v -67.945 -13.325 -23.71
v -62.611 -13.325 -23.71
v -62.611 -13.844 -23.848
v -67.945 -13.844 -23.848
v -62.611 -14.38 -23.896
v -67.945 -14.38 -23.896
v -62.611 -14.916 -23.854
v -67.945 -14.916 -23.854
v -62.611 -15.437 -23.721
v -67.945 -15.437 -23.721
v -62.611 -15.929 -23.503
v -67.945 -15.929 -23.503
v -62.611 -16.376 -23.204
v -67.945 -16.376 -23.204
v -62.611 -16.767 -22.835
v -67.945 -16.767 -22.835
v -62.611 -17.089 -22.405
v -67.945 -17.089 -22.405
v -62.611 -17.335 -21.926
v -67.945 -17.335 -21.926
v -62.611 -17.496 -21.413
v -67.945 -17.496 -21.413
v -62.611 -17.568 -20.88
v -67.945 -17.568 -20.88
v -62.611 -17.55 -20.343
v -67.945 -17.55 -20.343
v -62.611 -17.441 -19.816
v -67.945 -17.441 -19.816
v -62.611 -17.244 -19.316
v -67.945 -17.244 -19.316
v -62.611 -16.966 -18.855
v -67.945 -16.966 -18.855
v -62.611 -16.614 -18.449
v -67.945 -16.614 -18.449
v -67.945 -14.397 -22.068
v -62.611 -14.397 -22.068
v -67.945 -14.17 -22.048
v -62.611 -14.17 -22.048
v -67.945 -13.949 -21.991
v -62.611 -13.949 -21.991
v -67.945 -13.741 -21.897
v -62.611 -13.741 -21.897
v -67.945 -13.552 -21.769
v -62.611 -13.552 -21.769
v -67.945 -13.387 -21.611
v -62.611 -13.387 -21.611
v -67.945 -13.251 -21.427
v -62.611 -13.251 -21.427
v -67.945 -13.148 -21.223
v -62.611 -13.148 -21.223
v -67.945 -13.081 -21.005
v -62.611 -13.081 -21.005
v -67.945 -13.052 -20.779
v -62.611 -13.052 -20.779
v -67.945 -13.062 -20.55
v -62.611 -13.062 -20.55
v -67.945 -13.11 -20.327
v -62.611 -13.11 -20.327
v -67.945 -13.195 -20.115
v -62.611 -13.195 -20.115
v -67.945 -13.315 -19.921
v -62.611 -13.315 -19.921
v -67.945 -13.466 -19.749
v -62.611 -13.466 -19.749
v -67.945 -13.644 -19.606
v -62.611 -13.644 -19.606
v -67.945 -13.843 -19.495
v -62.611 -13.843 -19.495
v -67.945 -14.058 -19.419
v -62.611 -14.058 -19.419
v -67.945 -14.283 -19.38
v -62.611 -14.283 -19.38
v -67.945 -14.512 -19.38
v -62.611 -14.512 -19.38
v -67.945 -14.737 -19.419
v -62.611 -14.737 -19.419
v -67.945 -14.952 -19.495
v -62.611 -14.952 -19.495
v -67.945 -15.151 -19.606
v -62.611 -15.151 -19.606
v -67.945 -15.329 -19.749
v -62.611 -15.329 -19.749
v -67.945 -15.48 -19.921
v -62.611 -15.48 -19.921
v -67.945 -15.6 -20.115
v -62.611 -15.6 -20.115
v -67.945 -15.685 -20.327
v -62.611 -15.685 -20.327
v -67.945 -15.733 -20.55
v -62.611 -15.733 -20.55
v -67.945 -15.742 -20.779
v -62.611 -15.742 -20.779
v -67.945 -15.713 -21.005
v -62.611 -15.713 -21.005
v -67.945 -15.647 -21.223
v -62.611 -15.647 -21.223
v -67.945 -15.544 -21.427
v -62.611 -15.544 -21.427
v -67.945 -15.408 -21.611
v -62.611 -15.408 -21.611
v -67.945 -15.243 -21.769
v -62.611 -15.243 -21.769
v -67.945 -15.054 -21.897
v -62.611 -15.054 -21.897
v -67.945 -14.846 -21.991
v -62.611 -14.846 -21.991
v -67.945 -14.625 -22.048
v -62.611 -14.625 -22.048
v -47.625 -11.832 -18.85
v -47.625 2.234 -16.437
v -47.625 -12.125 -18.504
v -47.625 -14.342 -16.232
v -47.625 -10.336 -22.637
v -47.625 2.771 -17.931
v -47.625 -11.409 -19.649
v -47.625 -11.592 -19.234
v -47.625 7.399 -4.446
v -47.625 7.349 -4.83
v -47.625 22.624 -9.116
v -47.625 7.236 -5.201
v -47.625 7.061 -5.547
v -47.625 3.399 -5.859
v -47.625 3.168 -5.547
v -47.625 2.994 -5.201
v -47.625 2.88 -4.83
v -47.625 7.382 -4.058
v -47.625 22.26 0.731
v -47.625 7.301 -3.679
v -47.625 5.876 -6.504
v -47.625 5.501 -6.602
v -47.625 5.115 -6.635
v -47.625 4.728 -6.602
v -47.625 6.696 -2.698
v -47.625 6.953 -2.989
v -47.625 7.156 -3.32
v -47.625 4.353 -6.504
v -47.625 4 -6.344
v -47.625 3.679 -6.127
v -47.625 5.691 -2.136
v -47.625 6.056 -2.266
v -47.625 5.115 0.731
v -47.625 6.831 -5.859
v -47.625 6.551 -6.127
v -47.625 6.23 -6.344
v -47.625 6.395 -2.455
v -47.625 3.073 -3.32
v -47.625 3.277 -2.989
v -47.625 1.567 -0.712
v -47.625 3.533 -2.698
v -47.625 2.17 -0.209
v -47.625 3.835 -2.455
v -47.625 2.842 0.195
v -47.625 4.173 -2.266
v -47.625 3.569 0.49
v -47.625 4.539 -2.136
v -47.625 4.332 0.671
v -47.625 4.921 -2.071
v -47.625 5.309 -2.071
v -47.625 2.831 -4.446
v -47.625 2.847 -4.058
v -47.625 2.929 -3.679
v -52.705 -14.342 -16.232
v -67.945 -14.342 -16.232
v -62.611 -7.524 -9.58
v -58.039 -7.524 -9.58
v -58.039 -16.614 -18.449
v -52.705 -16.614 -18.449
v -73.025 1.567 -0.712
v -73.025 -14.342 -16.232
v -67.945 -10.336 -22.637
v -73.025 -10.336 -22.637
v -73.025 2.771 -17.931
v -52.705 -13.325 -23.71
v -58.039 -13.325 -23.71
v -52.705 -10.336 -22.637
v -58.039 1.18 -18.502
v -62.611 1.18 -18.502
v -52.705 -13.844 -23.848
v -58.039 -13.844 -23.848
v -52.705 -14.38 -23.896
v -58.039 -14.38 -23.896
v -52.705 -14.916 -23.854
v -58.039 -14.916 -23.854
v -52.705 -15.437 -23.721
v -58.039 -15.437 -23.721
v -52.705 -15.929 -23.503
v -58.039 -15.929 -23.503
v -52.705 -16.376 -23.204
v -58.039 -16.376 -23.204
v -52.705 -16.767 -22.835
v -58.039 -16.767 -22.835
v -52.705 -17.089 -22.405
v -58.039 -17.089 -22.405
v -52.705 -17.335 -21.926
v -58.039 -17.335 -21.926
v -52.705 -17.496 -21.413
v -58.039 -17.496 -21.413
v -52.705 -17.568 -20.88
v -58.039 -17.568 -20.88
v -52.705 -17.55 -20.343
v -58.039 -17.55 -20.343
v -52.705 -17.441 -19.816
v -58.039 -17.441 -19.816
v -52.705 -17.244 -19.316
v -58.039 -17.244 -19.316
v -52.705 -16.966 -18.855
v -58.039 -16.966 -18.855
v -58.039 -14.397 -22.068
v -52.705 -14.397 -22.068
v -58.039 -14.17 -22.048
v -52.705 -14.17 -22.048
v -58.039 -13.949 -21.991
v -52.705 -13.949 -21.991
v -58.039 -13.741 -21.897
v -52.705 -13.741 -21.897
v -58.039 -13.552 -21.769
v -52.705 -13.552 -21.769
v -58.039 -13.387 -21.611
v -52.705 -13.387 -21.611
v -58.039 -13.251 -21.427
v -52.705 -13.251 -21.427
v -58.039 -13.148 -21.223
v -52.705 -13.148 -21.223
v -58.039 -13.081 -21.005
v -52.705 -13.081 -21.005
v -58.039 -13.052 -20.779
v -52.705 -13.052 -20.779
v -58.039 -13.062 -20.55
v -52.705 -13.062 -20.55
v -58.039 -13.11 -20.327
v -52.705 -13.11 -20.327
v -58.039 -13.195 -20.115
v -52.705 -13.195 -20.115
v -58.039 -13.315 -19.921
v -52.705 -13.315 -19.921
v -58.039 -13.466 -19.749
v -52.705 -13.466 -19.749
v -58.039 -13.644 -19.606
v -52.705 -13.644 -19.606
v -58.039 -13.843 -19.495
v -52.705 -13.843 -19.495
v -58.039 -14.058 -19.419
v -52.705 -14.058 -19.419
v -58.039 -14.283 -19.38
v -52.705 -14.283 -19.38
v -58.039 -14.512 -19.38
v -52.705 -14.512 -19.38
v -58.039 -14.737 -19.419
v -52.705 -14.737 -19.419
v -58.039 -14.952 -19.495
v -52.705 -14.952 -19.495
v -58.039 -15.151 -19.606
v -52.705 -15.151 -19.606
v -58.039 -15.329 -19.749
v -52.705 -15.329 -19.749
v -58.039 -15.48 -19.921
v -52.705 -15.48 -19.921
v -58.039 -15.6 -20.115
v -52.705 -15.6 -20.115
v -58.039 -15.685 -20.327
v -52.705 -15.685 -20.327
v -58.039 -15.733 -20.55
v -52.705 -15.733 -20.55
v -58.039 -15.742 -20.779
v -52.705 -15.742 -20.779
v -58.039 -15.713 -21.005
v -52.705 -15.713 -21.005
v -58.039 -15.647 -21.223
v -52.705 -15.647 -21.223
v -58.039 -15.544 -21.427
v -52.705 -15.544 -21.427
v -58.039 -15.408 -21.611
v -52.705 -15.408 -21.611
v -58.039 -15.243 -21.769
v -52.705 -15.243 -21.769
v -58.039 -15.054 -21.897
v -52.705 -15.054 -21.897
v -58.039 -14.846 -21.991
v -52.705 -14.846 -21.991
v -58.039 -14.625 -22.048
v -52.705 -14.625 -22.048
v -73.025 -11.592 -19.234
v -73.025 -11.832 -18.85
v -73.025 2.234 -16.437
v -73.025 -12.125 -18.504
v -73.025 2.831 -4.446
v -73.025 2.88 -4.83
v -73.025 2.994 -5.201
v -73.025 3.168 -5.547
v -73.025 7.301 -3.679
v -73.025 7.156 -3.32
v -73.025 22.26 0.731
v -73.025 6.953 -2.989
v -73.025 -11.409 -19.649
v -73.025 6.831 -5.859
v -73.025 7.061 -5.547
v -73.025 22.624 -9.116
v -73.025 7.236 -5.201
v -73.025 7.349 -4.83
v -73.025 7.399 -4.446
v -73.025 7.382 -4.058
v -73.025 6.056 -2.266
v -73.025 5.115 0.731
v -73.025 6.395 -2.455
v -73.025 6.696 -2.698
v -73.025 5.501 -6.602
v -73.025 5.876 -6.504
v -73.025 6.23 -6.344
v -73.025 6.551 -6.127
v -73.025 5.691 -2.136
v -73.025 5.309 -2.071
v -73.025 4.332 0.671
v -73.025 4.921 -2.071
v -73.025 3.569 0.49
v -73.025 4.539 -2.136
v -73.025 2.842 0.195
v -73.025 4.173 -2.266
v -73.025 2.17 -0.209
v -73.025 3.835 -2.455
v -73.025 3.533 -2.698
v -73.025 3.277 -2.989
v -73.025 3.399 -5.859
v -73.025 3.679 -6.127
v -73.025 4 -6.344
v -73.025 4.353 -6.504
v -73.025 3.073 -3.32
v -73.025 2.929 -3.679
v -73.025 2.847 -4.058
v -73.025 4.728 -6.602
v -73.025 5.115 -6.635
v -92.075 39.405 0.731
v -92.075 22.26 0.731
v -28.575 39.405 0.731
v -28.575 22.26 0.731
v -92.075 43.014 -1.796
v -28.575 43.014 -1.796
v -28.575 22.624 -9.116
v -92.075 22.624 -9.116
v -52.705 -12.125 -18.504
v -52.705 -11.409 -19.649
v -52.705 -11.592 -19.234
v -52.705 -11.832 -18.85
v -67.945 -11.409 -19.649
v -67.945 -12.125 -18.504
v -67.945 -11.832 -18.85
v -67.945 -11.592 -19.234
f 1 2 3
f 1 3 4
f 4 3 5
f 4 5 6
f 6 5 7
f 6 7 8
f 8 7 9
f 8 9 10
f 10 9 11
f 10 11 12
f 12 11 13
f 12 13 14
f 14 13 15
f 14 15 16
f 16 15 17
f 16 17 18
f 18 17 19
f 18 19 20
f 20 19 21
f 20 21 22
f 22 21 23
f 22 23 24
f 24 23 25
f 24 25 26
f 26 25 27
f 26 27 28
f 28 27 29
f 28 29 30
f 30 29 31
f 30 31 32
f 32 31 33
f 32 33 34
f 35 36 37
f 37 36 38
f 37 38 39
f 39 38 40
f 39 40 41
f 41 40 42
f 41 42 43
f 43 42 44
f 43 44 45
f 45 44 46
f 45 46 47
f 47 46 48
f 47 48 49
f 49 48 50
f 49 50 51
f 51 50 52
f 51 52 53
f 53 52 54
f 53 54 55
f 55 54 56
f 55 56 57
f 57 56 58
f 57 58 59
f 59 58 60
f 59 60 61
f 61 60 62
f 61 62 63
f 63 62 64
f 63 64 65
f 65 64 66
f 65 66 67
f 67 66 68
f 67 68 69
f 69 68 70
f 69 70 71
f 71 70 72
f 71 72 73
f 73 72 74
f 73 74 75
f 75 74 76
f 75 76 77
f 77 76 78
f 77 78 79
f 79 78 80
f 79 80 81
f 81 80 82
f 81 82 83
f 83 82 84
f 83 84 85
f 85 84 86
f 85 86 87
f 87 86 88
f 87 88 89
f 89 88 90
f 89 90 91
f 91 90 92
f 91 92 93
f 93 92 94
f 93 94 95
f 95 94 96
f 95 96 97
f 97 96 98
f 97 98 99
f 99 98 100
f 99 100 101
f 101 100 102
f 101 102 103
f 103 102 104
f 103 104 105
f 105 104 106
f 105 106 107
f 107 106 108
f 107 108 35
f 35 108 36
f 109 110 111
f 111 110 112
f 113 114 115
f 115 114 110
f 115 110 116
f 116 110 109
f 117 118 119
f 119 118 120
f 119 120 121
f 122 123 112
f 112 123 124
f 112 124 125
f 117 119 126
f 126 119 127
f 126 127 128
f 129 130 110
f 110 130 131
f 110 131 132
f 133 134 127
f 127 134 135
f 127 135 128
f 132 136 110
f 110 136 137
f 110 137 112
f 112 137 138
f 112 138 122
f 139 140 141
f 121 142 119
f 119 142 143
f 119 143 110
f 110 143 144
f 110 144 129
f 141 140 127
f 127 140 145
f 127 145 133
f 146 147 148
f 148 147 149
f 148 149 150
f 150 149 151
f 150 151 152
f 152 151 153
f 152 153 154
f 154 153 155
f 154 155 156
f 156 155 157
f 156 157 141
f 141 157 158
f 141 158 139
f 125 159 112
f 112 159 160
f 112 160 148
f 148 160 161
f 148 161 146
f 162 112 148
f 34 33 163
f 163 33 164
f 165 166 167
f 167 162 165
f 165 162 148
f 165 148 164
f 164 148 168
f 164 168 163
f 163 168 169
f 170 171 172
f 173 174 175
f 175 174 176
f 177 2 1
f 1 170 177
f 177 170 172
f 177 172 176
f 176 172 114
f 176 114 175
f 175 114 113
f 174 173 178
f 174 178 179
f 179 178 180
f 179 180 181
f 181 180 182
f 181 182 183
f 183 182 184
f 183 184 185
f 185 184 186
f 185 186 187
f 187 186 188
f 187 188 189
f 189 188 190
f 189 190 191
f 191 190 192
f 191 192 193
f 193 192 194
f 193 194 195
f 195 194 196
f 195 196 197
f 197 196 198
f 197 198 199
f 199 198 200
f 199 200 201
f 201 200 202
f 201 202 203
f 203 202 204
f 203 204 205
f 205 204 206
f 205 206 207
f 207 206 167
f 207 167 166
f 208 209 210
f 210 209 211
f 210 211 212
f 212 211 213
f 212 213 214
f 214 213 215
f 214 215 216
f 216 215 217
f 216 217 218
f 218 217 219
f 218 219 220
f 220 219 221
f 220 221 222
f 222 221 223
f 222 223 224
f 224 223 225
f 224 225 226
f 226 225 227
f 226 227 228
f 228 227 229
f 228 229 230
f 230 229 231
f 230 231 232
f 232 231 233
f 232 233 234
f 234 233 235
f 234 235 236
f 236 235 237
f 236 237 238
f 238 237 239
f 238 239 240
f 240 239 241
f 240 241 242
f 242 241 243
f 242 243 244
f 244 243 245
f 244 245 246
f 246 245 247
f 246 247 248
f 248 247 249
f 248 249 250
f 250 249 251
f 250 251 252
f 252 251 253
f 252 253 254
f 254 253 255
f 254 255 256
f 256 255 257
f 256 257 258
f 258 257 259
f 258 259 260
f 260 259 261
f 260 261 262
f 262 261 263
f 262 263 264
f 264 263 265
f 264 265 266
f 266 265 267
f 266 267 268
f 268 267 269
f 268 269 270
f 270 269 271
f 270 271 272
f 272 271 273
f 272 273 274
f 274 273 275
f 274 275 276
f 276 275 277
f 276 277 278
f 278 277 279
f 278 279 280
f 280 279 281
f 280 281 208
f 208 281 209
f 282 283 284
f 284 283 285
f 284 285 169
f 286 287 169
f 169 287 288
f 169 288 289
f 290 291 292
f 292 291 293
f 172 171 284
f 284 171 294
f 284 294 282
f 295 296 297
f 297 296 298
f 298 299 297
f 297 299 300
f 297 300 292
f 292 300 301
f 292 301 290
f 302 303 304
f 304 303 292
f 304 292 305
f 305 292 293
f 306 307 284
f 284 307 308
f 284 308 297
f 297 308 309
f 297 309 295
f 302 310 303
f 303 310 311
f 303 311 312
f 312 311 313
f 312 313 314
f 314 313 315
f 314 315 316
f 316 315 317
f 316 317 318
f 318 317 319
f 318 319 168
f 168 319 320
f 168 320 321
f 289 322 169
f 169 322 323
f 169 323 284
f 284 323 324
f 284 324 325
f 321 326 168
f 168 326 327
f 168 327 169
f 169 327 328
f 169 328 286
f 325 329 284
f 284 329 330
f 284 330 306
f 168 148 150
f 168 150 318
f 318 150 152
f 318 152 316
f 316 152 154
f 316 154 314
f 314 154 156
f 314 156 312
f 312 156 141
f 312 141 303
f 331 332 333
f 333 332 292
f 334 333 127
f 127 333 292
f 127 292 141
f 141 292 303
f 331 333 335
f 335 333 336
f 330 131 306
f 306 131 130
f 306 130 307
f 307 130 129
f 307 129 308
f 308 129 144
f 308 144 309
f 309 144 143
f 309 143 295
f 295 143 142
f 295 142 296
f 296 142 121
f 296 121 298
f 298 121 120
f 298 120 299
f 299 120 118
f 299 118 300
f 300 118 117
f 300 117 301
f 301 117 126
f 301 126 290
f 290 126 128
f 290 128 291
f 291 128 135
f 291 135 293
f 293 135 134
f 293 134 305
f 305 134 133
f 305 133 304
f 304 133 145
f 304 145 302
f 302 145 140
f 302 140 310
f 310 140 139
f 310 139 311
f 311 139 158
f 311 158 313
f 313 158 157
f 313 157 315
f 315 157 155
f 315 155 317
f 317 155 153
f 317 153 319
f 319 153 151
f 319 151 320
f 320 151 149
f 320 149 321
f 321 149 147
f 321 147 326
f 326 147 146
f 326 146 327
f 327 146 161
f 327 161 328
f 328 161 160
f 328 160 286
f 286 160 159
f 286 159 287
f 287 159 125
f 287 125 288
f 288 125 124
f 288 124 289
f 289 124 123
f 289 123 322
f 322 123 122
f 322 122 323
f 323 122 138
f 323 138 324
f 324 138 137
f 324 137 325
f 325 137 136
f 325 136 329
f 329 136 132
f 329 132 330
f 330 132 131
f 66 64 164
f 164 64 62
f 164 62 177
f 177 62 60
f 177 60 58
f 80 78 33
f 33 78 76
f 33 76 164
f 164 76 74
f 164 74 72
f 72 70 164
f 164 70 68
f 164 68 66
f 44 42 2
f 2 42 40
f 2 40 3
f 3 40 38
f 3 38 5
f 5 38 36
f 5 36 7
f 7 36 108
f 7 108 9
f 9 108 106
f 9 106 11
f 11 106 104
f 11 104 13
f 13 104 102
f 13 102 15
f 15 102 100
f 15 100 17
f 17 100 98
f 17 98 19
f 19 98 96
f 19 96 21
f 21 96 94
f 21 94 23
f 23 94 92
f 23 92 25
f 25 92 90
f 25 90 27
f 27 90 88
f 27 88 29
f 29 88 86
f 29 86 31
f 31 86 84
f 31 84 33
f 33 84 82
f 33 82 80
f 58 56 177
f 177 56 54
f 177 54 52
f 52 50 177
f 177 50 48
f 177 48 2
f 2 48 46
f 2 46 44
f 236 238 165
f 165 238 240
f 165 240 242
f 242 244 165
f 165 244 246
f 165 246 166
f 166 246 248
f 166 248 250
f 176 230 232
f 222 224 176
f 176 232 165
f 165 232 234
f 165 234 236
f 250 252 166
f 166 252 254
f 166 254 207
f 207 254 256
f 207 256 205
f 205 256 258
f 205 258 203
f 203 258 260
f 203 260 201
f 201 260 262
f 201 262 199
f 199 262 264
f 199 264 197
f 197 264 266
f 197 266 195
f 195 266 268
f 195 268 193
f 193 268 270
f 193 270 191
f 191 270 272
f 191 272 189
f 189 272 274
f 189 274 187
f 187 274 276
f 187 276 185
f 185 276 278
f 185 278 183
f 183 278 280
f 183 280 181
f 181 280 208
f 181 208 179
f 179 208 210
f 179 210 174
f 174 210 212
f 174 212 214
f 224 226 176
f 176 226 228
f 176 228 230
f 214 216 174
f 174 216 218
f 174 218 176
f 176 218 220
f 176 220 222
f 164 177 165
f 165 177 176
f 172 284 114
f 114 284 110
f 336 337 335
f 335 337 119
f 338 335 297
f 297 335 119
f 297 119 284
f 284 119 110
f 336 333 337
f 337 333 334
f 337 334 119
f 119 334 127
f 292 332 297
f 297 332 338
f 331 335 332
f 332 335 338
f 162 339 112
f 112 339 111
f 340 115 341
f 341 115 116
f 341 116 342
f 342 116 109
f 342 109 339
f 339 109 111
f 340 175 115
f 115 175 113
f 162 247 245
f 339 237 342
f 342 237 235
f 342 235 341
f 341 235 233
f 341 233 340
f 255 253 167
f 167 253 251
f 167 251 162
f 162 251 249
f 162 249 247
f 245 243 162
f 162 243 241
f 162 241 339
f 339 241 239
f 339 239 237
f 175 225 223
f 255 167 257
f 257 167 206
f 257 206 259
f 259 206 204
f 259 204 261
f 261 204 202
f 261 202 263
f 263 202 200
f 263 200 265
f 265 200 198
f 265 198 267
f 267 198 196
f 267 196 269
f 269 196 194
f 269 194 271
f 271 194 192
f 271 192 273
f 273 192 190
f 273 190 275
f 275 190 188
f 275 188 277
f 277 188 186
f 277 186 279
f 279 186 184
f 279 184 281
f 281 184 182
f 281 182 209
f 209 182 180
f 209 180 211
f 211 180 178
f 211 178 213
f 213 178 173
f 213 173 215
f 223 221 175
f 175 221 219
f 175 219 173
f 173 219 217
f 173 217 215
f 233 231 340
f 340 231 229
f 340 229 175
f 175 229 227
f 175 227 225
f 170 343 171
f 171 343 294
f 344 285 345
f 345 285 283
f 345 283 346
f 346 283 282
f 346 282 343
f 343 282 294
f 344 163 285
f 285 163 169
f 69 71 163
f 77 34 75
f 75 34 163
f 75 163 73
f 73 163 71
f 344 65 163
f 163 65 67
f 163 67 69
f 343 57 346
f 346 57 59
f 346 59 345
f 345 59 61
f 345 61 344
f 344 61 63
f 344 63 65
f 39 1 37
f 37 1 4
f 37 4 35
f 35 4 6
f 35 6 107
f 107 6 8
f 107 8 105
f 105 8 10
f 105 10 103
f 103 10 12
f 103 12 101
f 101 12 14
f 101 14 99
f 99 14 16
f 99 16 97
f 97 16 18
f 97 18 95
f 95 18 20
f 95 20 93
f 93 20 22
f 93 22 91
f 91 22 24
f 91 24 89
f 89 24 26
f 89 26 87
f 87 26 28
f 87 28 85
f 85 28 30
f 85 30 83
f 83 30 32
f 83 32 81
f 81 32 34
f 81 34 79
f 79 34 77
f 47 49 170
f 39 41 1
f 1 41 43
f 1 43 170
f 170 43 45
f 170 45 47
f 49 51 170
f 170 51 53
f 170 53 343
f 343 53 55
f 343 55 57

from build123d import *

# Parameters (mm, degrees)
BOSS_EXTRUDE1_DEPTH = 50.8
SCALE1_SCALE        = 0.5
SKETCH2_R           = 1.3462
CUT_EXTRUDE1_DEPTH  = 57.620860656
SKETCH3_R           = 2.286
CUT_EXTRUDE2_DEPTH  = 57.620860656
CUT_EXTRUDE3_DEPTH  = 2.286
CUT_EXTRUDE4_DEPTH  = 57.620860656
BOSS_EXTRUDE2_DEPTH = 31.75
SKETCH7_R           = 1.3462
CUT_EXTRUDE5_DEPTH  = 5.08


with BuildPart() as part:
    # Sketch1 → Boss-Extrude1 (new body)
    with BuildSketch(Plane(origin=(-34.925, 0, 0), x_dir=(0, 0, -1), z_dir=(1, 0, 0))):
        with BuildLine():
            Line((38.721808668, -36.878639896), (-2.875579258, 78.983230962))
            Line((-2.875579258, 78.983230962), (-10.16, 68.58))
            Line((-10.16, 68.58), (-10.16, 0))
            ThreePointArc((-10.16, 0), (-9.410554147, -3.829761173), (-7.27278137, -7.094522616))
            Line((-7.27278137, -7.094522616), (28.19983171, -43.458429465))
            ThreePointArc((28.19983171, -43.458429465), (36.112120939, -44.408324587), (38.721808668, -36.878639896))
        make_face()
    extrude(amount=-BOSS_EXTRUDE1_DEPTH)


with BuildPart() as part_1:
    # Scale1: scaled about (-60.325, 10.229435701, -8.69743621)
    add(part.part.scale(SCALE1_SCALE).moved(Location((-30.1625, 5.11471785, -4.348718105))))

    # Sketch2 → Cut-Extrude1 (cut, through all)
    with BuildSketch(Plane(origin=(-47.625, 0, 0), x_dir=(0, 0, -1), z_dir=(1, 0, 0))):
        with Locations((20.721378138, -14.397458564)):
            Circle(SKETCH2_R)
    extrude(amount=-CUT_EXTRUDE1_DEPTH, mode=Mode.SUBTRACT)

    # Sketch3 → Cut-Extrude2 (cut, through all)
    with BuildSketch(Plane(origin=(-47.625, 0, 0), x_dir=(0, 0, -1), z_dir=(1, 0, 0))):
        with Locations((4.348718105, 5.11471785)):
            Circle(SKETCH3_R)
    extrude(amount=-CUT_EXTRUDE2_DEPTH, mode=Mode.SUBTRACT)

    # Sketch4 → Cut-Extrude3 (cut, symmetric)
    with BuildSketch(Plane(origin=(-60.325, 0, 0), x_dir=(0, 0, -1), z_dir=(1, 0, 0))):
        with BuildLine():
            Line((9.58048069, -7.52352017), (18.44863396, -16.614496882))
            ThreePointArc((18.44863396, -16.614496882), (22.404778575, -17.089444443), (23.709622439, -13.324602098))
            Line((23.709622439, -13.324602098), (18.502250725, 1.179573745))
            Line((18.502250725, 1.179573745), (9.58048069, -7.52352017))
        make_face()
    extrude(amount=CUT_EXTRUDE3_DEPTH, both=True, mode=Mode.SUBTRACT)

    # Sketch5 → Cut-Extrude4 (cut, through all)
    with BuildSketch(Plane(origin=(-47.625, 0, 0), x_dir=(0, 0, -1), z_dir=(1, 0, 0))):
        Polygon((1.795924155, 43.013942134), (16.43679686, 2.234484886), (17.930919011, 2.770913119), (2.910928476, 44.606333332), align=None)
    extrude(amount=-CUT_EXTRUDE4_DEPTH, mode=Mode.SUBTRACT)

    # Sketch6 → Boss-Extrude2 (add, symmetric)
    with BuildSketch(Plane(origin=(-60.325, 0, 0), x_dir=(0, 0, -1), z_dir=(1, 0, 0))):
        Polygon((-0.731281895, 22.25971785), (-0.731281895, 39.40471785), (1.795924155, 43.013942134), (9.116360508, 22.62421351), align=None)
    extrude(amount=BOSS_EXTRUDE2_DEPTH, both=True)

    # Sketch7 → Cut-Extrude5 (cut)
    # profile 1 of 3: a face of its own
    with BuildSketch(Plane(origin=(-47.625, 0, 0), x_dir=(0, 0, -1), z_dir=(1, 0, 0))):
        with BuildLine():
            ThreePointArc((23.709622439, -13.324602098), (22.075761864, -11.525826672), (19.648521671, -11.409214263))
            ThreePointArc((19.648521671, -11.409214263), (19.037977702, -11.705472686), (18.504339821, -12.124714386))
            ThreePointArc((18.504339821, -12.124714386), (17.546622489, -14.358068573), (18.44863396, -16.614496882))
            ThreePointArc((18.44863396, -16.614496882), (21.918178505, -17.338256735), (23.896378138, -14.397458564))
            ThreePointArc((23.896378138, -14.397458564), (23.849340786, -13.852963686), (23.709622439, -13.324602098))
        make_face()
        with Locations((20.721378138, -14.397458564)):
            Circle(SKETCH7_R, mode=Mode.SUBTRACT)
    # profile 2 of 3: a face of its own
    with BuildSketch(Plane(origin=(-47.625, 0, 0), x_dir=(0, 0, -1), z_dir=(1, 0, 0))):
        with BuildLine():
            ThreePointArc((18.44863396, -16.614496882), (17.546622489, -14.358068573), (18.504339821, -12.124714386))
            Line((18.504339821, -12.124714386), (16.231595643, -14.341752704))
            Line((16.231595643, -14.341752704), (18.44863396, -16.614496882))
        make_face()
    # profile 3 of 3: a face of its own
    with BuildSketch(Plane(origin=(-47.625, 0, 0), x_dir=(0, 0, -1), z_dir=(1, 0, 0))):
        with BuildLine():
            Line((22.636765972, -10.336357797), (19.648521671, -11.409214263))
            ThreePointArc((19.648521671, -11.409214263), (22.075761864, -11.525826672), (23.709622439, -13.324602098))
            Line((23.709622439, -13.324602098), (22.636765972, -10.336357797))
        make_face()
    cut_extrude5 = extrude(amount=-CUT_EXTRUDE5_DEPTH, mode=Mode.SUBTRACT)

    # Mirror1: Cut-Extrude5 across plane
    add(cut_extrude5.mirror(Plane(origin=(-60.325, 0, 0), x_dir=(0, 0, 1), z_dir=(1, 0, 0))), mode=Mode.SUBTRACT)


solid = part_1.part
